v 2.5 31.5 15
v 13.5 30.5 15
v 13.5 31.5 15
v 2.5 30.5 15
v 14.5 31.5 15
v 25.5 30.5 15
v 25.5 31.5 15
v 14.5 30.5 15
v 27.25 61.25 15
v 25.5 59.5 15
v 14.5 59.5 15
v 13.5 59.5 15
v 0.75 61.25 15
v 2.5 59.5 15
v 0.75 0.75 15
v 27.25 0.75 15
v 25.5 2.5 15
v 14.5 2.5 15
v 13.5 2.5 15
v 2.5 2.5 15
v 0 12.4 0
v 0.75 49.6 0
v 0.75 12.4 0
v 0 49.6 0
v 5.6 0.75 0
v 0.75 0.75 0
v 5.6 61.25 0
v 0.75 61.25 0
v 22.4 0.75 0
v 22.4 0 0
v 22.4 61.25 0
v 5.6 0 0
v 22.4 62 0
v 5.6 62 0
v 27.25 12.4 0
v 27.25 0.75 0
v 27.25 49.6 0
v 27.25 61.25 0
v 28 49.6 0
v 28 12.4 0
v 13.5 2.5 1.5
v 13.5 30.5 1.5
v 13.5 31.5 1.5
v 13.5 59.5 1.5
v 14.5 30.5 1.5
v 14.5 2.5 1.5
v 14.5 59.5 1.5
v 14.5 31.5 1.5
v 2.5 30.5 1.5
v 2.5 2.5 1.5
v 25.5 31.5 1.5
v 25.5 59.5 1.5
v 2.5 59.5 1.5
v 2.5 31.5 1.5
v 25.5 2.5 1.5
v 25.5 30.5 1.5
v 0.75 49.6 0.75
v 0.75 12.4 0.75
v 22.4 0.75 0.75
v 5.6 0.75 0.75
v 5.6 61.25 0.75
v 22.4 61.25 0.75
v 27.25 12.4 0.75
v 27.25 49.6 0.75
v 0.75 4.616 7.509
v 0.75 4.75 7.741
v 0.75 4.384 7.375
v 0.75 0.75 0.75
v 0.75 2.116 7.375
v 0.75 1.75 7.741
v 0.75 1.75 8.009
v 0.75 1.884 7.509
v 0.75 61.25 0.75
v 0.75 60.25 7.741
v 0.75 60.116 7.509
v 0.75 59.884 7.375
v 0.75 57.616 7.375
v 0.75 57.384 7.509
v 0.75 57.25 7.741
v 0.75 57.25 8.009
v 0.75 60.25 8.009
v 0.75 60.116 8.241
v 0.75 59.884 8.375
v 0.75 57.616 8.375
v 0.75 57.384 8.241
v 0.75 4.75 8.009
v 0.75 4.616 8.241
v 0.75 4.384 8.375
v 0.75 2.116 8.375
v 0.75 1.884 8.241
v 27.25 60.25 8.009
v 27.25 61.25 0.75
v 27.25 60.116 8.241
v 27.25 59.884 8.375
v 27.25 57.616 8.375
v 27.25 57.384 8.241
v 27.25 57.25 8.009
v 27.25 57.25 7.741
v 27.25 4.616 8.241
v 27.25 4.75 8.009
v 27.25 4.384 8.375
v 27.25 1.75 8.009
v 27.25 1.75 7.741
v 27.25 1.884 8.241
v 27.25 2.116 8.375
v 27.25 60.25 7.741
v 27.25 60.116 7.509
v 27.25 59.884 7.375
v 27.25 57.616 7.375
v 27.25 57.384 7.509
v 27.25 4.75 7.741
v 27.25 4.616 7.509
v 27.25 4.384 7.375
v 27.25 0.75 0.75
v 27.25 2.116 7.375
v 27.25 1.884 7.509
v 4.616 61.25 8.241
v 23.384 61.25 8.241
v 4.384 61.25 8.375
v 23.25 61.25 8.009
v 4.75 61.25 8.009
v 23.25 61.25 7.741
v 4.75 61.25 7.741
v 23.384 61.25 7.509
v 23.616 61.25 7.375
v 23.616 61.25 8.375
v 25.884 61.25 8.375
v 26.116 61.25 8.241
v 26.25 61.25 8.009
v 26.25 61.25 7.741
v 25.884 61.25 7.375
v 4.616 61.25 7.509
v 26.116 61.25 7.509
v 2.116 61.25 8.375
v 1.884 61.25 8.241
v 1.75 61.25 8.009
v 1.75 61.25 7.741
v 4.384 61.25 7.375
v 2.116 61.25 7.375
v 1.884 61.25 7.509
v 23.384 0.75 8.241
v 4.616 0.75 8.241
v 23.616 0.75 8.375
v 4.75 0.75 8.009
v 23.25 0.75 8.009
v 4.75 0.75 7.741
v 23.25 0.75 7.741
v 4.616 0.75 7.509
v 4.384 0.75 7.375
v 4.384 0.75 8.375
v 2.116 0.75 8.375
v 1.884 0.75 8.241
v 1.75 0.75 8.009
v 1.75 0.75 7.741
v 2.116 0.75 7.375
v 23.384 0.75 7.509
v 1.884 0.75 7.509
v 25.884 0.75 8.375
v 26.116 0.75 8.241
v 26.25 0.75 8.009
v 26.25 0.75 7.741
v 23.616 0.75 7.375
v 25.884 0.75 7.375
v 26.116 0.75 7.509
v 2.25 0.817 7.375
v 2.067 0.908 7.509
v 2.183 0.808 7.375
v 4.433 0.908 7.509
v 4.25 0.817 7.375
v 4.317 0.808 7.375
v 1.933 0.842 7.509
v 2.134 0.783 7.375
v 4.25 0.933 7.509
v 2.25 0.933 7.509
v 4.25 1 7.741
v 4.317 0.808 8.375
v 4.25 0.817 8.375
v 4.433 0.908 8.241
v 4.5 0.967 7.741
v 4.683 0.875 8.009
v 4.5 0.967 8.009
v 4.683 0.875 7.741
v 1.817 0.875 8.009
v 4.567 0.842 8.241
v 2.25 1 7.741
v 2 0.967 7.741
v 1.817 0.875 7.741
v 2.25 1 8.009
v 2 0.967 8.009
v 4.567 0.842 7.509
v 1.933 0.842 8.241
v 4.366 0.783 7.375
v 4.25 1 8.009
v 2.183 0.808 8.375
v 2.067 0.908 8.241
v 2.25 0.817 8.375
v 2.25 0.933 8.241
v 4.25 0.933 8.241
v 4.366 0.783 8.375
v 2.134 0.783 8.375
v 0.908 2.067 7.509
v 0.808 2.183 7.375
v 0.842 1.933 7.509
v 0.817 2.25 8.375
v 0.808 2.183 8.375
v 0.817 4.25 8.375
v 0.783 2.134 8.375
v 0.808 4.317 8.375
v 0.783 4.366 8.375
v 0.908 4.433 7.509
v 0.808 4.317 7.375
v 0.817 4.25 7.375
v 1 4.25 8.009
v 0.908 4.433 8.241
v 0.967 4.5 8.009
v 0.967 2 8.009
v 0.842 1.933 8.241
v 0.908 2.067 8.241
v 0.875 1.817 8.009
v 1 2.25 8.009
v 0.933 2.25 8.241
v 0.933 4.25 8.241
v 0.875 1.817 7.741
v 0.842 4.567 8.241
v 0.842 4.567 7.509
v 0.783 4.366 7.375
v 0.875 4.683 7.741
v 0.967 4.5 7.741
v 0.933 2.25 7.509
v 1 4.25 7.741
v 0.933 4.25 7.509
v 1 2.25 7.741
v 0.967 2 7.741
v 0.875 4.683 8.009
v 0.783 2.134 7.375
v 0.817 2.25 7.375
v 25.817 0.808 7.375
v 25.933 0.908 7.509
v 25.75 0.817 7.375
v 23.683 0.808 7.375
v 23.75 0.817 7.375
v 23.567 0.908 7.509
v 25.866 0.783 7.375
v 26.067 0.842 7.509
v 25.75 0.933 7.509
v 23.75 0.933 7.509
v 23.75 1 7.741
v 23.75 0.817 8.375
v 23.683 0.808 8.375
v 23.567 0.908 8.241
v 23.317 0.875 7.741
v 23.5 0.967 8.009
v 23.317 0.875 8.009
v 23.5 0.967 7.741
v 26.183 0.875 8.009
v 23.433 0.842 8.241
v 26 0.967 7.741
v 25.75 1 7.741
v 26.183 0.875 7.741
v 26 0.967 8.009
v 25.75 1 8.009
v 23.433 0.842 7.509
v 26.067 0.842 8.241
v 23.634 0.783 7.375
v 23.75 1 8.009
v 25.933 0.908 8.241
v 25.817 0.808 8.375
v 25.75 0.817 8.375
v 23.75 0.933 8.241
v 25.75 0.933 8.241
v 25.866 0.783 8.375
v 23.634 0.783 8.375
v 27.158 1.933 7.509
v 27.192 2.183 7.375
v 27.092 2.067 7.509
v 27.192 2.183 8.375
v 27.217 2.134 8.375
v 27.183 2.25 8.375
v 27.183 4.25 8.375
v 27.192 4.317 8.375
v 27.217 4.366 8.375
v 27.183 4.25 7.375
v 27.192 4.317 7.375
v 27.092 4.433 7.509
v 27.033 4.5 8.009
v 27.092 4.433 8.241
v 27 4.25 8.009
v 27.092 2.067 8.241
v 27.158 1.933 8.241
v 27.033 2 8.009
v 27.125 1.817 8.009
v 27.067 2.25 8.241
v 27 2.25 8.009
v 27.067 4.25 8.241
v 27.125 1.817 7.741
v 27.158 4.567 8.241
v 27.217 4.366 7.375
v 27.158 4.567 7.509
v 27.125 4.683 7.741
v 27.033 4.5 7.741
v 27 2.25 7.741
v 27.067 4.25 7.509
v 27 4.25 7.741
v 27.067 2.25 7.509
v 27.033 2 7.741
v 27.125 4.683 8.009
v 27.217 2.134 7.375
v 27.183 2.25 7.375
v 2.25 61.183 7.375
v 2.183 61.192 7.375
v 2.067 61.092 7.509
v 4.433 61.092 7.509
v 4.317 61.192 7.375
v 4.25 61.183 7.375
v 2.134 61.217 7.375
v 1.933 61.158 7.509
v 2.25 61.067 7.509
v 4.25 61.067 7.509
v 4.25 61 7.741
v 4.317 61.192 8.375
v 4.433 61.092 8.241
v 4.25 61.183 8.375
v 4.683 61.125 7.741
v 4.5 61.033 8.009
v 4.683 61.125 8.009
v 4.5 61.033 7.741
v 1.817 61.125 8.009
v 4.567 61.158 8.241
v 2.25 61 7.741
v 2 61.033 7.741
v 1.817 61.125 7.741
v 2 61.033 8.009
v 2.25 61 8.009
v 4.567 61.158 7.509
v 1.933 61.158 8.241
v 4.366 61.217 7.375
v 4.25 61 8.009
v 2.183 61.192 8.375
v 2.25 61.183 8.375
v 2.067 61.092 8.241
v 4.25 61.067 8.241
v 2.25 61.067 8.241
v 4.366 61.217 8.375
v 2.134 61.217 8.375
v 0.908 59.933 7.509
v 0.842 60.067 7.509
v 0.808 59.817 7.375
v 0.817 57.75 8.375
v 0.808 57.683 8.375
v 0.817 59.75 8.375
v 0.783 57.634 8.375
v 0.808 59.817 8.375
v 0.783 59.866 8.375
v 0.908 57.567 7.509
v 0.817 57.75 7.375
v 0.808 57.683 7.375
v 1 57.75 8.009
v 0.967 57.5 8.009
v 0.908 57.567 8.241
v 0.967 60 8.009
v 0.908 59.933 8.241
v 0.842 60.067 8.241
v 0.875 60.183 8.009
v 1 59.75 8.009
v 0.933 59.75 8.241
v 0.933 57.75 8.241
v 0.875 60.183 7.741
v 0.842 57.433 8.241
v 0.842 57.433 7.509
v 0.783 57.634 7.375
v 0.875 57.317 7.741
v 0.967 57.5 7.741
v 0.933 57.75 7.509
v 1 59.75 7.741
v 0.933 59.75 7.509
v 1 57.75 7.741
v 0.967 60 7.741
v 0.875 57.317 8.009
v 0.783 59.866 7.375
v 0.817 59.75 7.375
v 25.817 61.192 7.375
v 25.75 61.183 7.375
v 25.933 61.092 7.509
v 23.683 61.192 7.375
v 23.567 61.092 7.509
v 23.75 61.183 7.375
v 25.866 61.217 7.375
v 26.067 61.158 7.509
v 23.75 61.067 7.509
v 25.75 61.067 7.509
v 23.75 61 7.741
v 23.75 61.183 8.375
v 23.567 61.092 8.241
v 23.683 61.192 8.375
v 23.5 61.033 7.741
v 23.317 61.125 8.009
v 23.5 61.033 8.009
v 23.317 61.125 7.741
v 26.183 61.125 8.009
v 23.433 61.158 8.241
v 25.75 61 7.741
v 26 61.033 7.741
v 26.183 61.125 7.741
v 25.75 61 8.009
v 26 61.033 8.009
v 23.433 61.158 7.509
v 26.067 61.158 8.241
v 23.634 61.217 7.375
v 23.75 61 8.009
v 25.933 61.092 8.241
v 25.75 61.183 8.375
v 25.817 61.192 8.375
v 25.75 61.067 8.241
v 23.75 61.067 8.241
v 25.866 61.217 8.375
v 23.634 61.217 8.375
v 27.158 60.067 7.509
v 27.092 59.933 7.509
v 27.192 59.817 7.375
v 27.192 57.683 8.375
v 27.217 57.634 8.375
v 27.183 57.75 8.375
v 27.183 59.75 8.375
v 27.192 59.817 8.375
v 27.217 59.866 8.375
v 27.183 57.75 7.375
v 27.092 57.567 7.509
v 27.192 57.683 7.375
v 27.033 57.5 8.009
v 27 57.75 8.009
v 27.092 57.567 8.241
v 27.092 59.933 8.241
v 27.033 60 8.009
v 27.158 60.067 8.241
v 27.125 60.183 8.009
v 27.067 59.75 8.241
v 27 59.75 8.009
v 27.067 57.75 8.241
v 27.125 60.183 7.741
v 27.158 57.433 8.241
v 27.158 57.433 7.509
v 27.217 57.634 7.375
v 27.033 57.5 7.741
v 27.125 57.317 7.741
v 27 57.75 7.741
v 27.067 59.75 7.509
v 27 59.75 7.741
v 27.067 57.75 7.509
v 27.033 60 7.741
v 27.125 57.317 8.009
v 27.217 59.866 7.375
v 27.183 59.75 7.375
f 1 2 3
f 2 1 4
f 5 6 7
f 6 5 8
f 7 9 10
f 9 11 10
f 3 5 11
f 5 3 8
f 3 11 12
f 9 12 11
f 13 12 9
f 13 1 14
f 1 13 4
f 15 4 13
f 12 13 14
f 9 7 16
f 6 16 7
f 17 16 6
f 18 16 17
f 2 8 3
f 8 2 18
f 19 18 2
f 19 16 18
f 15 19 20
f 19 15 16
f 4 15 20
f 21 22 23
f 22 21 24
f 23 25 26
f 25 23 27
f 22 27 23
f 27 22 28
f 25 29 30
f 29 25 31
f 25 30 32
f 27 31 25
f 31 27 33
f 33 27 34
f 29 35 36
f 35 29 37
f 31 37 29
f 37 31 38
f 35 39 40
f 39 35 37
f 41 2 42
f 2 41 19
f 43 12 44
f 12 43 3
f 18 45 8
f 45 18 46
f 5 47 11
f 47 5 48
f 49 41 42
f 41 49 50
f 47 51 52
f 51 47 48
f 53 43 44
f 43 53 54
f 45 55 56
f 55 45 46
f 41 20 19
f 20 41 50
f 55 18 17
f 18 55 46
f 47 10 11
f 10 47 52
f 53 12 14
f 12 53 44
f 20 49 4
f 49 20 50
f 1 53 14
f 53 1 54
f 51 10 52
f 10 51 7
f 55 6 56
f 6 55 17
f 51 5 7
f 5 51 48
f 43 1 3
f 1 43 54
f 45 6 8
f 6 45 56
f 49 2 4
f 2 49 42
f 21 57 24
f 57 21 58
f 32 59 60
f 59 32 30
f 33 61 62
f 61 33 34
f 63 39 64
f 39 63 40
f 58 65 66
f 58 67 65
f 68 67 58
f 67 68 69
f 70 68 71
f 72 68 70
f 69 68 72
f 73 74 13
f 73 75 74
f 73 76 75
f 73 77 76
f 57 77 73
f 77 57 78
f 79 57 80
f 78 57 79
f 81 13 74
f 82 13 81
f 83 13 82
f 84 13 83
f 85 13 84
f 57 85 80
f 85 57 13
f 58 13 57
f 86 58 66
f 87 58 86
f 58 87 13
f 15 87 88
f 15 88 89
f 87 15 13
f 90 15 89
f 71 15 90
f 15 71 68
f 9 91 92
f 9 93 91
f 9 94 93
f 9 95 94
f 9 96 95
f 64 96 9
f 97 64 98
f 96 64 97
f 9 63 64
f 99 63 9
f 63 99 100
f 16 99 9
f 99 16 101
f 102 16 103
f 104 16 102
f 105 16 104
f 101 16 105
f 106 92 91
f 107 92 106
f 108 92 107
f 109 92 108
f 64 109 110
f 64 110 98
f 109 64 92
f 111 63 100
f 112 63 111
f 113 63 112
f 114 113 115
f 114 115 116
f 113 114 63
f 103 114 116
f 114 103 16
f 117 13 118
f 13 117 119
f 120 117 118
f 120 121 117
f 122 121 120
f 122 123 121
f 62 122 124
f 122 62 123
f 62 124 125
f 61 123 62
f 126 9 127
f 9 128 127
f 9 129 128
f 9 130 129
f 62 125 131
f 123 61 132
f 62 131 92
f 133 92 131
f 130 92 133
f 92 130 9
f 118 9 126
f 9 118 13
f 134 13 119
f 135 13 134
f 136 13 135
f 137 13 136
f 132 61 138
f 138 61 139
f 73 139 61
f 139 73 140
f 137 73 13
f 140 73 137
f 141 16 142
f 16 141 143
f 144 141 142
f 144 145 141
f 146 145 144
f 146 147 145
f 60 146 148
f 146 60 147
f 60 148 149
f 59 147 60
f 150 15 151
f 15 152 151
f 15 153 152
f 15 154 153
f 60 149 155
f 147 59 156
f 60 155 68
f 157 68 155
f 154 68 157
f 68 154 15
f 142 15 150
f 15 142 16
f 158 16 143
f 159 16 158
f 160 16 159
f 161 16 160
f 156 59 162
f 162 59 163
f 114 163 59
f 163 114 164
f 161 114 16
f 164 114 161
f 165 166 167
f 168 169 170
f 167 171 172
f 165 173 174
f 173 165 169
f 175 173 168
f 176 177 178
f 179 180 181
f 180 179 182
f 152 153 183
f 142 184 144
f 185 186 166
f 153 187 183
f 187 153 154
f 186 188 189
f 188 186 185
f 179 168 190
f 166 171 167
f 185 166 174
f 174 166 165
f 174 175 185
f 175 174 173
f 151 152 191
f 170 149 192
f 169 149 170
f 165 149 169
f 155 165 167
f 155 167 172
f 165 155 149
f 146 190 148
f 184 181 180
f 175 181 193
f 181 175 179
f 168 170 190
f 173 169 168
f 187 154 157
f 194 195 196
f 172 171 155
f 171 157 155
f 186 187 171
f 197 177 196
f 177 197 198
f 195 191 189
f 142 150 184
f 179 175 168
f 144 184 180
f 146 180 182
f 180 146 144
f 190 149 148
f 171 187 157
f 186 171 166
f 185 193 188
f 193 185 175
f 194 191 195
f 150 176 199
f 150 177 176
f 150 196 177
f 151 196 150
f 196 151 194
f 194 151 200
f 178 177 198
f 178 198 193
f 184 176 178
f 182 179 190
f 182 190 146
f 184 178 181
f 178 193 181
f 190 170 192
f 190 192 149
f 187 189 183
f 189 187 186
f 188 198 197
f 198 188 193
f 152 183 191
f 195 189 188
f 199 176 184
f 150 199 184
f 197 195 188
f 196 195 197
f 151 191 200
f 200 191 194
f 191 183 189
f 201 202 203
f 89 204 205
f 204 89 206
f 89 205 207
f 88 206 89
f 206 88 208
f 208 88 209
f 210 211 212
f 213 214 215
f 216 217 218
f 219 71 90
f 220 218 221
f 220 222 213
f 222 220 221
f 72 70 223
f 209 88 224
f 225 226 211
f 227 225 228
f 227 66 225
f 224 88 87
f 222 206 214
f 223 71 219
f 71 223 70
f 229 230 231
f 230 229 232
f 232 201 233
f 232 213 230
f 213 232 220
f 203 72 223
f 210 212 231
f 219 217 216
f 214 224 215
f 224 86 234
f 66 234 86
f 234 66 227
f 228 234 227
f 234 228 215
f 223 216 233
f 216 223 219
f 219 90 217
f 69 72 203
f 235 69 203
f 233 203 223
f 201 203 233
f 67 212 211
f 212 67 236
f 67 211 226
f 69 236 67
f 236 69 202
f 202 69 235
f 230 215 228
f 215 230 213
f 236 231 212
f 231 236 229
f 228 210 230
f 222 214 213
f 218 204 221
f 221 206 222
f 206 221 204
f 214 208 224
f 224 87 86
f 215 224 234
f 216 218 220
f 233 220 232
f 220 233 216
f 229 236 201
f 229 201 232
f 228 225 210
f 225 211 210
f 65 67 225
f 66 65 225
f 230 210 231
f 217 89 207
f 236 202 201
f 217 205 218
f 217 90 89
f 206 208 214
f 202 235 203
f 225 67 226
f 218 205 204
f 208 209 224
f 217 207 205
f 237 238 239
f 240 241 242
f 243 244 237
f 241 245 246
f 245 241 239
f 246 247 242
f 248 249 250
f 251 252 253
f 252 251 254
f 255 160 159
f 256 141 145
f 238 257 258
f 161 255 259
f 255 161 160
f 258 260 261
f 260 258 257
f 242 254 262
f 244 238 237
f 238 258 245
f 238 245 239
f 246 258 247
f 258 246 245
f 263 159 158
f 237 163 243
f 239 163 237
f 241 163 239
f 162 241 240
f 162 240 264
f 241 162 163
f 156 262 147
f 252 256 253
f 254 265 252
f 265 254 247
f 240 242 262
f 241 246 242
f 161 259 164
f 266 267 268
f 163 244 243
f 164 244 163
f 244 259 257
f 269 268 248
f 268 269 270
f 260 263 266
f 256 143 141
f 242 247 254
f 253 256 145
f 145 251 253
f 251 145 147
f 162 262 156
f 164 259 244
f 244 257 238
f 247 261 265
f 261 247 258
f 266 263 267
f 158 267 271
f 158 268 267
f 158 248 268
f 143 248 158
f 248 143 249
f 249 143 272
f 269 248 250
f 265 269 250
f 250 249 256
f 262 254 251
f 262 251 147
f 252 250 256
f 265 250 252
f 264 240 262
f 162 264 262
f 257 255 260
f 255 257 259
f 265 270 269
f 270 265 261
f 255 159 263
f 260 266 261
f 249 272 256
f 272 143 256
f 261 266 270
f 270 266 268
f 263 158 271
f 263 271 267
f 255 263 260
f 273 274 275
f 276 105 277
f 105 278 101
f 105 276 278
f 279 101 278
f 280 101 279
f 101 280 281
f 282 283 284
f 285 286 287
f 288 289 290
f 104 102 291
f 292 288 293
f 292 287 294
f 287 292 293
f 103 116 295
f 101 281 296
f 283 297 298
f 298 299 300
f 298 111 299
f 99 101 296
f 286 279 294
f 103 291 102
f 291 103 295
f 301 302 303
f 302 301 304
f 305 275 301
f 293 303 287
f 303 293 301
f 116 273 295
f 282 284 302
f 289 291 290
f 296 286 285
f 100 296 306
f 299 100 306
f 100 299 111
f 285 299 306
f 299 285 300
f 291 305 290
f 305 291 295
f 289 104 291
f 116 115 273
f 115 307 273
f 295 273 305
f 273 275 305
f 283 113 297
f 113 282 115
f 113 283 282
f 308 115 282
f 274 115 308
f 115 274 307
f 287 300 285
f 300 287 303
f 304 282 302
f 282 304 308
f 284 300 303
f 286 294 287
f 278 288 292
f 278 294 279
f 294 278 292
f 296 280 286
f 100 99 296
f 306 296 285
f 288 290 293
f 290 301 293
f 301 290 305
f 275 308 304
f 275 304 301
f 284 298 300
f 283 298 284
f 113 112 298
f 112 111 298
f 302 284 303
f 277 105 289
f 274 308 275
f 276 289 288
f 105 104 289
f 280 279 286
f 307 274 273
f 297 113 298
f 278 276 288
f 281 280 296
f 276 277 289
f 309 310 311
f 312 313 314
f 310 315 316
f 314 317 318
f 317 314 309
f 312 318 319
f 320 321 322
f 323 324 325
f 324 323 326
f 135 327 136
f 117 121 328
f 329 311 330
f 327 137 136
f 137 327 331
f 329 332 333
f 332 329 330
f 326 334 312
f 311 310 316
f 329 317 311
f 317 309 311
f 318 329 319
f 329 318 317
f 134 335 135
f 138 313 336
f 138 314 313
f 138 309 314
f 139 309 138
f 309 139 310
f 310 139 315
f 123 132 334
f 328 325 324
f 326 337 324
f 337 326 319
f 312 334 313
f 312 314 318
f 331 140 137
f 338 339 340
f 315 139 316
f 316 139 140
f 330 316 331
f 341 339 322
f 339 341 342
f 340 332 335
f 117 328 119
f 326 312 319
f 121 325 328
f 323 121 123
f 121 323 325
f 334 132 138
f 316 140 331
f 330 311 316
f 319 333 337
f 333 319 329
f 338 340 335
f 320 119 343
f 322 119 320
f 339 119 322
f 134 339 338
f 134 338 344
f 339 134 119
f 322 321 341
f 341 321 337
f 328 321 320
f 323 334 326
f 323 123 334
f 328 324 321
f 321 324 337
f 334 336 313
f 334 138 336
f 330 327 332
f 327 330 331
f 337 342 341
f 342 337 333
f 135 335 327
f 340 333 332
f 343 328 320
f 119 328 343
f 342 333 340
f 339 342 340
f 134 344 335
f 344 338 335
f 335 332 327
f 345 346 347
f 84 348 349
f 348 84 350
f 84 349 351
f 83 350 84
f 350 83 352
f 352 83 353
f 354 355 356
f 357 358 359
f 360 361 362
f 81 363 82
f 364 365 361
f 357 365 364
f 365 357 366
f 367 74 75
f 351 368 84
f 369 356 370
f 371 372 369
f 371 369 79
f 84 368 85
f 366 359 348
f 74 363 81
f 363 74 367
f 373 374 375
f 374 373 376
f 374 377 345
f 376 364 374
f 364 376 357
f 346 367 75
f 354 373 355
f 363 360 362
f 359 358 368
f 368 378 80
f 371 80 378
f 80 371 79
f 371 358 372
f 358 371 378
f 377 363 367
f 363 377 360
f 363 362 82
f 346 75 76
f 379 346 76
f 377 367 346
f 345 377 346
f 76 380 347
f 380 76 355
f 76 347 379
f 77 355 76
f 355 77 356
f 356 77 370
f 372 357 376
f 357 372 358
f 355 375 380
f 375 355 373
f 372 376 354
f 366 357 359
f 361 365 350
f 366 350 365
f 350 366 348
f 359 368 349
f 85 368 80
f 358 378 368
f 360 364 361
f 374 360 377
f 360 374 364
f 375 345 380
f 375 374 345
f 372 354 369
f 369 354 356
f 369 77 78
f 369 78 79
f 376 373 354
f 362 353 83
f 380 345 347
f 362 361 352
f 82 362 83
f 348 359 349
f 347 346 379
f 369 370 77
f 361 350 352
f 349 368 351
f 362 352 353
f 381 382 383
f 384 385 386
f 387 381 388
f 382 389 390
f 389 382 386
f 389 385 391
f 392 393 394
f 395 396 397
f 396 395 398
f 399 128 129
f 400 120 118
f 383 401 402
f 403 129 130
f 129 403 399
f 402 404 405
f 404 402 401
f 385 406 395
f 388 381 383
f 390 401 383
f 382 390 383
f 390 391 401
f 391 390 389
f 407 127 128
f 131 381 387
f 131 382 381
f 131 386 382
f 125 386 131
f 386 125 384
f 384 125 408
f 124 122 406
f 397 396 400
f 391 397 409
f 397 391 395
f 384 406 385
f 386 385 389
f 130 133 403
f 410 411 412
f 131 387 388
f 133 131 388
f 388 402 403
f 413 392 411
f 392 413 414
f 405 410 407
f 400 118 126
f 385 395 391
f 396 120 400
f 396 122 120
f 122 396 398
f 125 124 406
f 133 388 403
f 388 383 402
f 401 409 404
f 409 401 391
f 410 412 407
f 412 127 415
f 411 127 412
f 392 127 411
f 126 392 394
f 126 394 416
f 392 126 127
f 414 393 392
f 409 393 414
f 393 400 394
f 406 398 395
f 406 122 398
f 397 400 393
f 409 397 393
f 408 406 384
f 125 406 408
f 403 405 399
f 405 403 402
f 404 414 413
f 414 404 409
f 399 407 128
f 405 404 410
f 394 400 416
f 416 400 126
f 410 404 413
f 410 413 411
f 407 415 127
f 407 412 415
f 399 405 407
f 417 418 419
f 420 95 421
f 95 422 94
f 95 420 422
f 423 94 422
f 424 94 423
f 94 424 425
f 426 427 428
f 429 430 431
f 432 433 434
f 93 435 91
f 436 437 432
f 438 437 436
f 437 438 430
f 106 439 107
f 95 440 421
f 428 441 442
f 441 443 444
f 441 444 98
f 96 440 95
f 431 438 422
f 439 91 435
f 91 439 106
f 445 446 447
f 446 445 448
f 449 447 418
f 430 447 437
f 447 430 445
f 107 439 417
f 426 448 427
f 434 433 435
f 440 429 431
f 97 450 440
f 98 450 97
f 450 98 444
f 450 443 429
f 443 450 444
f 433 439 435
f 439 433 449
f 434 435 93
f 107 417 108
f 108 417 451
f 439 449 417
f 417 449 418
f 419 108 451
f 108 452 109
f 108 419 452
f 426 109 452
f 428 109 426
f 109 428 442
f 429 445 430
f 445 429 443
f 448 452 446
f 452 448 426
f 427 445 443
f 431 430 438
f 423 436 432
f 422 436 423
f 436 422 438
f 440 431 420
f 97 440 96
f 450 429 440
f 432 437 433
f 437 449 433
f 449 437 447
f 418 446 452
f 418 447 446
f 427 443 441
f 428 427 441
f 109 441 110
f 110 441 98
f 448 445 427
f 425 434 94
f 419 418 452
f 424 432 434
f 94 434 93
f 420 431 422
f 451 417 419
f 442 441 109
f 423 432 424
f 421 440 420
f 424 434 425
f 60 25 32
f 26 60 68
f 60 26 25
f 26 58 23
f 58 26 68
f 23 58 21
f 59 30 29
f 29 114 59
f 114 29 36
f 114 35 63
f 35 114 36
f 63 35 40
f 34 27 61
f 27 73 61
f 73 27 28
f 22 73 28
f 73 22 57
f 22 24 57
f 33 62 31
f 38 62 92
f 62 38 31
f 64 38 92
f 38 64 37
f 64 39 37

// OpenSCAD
include <boardgame_insert_toolkit_lib.2.scad>;

// determines whether lids are output.
g_b_print_lid = false;

// determines whether boxes are output.
g_b_print_box = true; 

// Focus on one box
// g_isolated_print_box = ""; 

// Used to visualize how all of the boxes fit together. 
g_b_visualization = false;          
        
// this is the outer wall thickness. 
//Default = 1.5mm
g_wall_thickness = 1.5;

// The tolerance value is extra space put between planes of the lid and box that fit together.
// Increase the tolerance to loosen the fit and decrease it to tighten it.
//
// Note that the tolerance is applied exclusively to the lid.
// So if the lid is too tight or too loose, change this value ( up for looser fit, down for tighter fit ) and 
// you only need to reprint the lid.
// 
// The exception is the stackable box, where the bottom of the box is the lid of the box below,
// in which case the tolerance also affects that box bottom.
//
g_tolerance = 0.15;

// This adjusts the position of the lid detents downward. 
// The larger the value, the bigger the gap between the lid and the box.
g_tolerance_detents_pos = 0.1;

data =
[
    [   "jf_biztokens",
        [
            [ BOX_SIZE_XYZ,                                     [28, 62, 15] ],
            [ BOX_LID,
                [
                    [ LID_SOLID_B, f],
                    [LID_FIT_UNDER_B, f],
                    [LID_HEIGHT, 15 ]
                ]
            ],
            [ BOX_COMPONENT,
                [
                    [CMP_NUM_COMPARTMENTS_XY,   [2,2]],
                    [CMP_COMPARTMENT_SIZE_XYZ,  [ 11, 28, 28] ]
                    //[CMP_PADDING_HEIGHT_ADJUST_XY,          [-10, -10] ],
                ]
            ],                            
        ]
    ],
];


MakeAll();
